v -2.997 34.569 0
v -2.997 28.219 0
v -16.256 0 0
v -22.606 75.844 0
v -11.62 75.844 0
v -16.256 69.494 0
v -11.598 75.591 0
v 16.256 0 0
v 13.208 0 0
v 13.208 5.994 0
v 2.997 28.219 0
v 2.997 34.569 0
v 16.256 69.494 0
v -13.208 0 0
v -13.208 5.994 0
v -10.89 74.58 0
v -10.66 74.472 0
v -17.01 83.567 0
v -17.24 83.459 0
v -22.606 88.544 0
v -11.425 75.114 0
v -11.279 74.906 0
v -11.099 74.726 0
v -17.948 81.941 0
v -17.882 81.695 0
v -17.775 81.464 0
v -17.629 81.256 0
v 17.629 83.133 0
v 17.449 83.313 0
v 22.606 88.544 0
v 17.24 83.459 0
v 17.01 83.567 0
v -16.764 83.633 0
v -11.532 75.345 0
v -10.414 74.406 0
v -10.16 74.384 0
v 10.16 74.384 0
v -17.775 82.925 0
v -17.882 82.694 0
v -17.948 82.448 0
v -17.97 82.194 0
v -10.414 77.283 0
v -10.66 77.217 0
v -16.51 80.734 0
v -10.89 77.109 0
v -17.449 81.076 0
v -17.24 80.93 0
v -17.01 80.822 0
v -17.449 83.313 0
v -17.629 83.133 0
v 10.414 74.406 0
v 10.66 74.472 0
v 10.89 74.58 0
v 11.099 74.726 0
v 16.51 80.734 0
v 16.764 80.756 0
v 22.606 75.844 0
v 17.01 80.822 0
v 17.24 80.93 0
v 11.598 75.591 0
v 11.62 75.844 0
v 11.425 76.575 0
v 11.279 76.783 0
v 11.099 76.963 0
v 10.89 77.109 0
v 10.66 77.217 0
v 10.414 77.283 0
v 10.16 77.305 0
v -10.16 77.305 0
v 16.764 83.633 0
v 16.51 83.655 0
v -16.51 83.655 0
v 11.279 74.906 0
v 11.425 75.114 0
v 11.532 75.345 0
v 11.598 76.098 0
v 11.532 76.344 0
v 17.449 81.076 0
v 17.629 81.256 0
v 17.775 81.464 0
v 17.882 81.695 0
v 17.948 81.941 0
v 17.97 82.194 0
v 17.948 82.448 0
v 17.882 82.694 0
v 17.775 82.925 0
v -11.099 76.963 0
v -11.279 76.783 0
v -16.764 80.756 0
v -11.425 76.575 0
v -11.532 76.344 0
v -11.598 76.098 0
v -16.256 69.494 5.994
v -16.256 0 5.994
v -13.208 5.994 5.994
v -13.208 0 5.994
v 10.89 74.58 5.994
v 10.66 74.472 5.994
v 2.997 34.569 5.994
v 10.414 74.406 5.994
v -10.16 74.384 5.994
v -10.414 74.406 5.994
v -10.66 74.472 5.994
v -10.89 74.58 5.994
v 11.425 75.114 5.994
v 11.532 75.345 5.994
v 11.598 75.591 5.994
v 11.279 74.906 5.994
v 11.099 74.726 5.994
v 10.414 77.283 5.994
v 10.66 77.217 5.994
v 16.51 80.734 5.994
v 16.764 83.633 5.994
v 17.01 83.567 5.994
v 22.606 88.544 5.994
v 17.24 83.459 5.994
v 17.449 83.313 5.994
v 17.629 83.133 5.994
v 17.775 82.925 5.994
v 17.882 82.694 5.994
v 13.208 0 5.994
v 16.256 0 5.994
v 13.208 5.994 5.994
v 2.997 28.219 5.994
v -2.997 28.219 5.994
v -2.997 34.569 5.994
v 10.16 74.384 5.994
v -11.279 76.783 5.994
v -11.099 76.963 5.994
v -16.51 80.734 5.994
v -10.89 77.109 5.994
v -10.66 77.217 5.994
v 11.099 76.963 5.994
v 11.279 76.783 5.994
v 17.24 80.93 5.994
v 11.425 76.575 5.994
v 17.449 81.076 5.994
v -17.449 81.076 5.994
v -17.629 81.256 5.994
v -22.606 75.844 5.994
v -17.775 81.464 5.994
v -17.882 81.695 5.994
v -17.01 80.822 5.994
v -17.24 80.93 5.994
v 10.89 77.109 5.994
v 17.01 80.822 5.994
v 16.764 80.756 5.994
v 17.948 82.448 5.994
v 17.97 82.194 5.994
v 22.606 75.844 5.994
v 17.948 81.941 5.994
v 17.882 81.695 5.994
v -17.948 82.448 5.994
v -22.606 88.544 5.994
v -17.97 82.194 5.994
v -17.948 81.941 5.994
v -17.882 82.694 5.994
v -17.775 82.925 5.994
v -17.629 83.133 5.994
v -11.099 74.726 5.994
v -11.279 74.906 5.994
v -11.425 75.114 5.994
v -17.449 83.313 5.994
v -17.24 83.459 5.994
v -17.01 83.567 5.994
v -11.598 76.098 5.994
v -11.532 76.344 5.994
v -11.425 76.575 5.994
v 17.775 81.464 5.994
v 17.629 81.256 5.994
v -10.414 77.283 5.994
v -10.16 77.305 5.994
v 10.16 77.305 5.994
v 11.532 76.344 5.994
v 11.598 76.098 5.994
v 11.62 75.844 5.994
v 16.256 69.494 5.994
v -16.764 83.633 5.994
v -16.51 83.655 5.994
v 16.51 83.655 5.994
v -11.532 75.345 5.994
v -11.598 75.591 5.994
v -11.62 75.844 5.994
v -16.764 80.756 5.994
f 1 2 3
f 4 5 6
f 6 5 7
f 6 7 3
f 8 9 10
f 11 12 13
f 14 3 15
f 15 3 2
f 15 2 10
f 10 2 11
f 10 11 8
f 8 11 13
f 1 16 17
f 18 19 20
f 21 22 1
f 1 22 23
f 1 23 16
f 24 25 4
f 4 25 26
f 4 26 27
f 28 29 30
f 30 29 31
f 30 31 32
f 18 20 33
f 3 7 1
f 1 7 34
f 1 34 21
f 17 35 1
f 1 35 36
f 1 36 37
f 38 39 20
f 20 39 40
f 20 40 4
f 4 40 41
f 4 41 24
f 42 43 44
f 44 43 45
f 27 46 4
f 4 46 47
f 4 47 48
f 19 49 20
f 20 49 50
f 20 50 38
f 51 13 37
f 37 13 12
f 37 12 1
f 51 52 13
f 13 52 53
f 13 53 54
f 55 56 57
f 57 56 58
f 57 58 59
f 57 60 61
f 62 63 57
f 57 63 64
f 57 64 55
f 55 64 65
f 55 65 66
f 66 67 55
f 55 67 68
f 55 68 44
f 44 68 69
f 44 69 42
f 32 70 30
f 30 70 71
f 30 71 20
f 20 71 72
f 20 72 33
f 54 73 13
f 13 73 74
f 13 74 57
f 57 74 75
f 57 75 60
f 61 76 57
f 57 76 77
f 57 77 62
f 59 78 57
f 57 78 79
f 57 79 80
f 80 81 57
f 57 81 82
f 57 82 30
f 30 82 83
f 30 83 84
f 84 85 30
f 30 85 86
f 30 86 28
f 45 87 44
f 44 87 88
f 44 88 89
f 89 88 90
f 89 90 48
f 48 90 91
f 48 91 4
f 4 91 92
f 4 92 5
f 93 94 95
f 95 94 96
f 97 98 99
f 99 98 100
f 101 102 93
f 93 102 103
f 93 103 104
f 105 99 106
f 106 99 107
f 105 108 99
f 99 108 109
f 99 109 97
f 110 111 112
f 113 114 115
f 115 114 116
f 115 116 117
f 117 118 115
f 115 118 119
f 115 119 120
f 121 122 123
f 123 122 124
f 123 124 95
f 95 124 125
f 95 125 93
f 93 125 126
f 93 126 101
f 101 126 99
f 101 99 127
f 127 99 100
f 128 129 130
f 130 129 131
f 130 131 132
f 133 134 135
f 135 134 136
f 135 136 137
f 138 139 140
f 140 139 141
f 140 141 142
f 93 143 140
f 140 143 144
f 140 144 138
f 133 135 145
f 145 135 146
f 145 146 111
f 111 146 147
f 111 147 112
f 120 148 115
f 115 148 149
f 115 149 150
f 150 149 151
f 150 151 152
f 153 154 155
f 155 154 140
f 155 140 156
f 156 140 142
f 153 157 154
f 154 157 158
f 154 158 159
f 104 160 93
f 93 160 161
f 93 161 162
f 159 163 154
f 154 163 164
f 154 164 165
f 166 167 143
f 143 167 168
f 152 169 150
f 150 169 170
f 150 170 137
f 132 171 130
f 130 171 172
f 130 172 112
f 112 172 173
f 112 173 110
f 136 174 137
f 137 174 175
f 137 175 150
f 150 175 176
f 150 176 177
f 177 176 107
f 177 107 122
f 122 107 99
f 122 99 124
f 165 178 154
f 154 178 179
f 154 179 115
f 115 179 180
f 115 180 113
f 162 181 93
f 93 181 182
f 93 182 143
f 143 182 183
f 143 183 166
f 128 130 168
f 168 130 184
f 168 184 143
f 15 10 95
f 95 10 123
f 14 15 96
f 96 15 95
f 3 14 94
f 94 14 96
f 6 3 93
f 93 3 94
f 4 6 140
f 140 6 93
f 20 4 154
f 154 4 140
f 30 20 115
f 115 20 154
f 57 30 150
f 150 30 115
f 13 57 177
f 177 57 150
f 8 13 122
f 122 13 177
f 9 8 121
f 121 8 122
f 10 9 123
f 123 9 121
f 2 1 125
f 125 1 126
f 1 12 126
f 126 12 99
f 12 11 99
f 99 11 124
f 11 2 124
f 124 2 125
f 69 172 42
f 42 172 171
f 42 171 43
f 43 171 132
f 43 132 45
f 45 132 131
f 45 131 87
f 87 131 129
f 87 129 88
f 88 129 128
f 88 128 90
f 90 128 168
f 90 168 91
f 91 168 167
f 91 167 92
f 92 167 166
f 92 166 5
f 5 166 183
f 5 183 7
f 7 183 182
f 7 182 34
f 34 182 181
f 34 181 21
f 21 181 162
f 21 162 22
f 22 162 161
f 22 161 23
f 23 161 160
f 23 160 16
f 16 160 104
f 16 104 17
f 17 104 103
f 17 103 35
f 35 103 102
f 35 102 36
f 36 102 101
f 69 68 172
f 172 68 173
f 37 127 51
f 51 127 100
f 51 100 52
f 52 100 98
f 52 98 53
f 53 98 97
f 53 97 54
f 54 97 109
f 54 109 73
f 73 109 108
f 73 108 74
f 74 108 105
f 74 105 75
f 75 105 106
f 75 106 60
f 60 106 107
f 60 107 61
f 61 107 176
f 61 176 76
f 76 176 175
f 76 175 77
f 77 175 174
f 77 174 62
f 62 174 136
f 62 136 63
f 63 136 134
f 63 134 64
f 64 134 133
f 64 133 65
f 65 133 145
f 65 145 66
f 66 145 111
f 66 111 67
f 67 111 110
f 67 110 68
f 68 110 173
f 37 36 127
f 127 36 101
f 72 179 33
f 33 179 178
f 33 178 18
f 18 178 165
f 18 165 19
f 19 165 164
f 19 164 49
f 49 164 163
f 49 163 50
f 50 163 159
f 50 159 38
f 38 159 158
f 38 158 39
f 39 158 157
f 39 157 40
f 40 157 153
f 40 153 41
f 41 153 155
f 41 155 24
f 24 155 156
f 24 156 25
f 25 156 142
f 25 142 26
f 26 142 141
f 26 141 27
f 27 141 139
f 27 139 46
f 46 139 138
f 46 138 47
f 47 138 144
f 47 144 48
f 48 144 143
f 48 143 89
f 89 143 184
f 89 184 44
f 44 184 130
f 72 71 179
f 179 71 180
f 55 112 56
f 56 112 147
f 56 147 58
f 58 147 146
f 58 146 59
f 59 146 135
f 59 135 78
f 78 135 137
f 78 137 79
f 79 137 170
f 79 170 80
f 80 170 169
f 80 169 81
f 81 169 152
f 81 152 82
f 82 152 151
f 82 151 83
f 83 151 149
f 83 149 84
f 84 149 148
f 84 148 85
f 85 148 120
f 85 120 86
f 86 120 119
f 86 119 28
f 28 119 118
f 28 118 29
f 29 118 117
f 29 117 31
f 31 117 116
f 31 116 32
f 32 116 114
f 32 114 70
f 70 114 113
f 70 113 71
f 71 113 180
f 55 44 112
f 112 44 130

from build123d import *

# Parameters (mm, degrees)
SKETCH1_W           = 5.9944
SKETCH1_H           = 6.35
BOSS_EXTRUDE1_DEPTH = 5.9944


with BuildPart() as part:
    # Sketch1 → Boss-Extrude1 (new body)
    with BuildSketch(Plane.XY):
        Polygon((16.256, 0), (13.208, 0), (13.208, 5.9944), (-13.208, 5.9944), (-13.208, 0), (-16.256, 0), (-16.256, 69.4944), (-22.606, 75.8444), (-22.606, 88.5444), (22.606, 88.5444), (22.606, 75.8444), (16.256, 69.4944), align=None)
        with Locations((0, 31.3944)):
            Rectangle(SKETCH1_W, SKETCH1_H, mode=Mode.SUBTRACT)
        with BuildLine():
            Line((-10.16, 77.3049), (10.16, 77.3049))
            ThreePointArc((10.16, 77.3049), (11.6205, 75.8444), (10.16, 74.3839))
            Line((10.16, 74.3839), (-10.16, 74.3839))
            ThreePointArc((-10.16, 74.3839), (-11.6205, 75.8444), (-10.16, 77.3049))
        make_face(mode=Mode.SUBTRACT)
        with BuildLine():
            Line((-16.51, 83.6549), (16.51, 83.6549))
            ThreePointArc((16.51, 83.6549), (17.9705, 82.1944), (16.51, 80.7339))
            Line((16.51, 80.7339), (-16.51, 80.7339))
            ThreePointArc((-16.51, 80.7339), (-17.9705, 82.1944), (-16.51, 83.6549))
        make_face(mode=Mode.SUBTRACT)
    extrude(amount=BOSS_EXTRUDE1_DEPTH)


solid = part.part
